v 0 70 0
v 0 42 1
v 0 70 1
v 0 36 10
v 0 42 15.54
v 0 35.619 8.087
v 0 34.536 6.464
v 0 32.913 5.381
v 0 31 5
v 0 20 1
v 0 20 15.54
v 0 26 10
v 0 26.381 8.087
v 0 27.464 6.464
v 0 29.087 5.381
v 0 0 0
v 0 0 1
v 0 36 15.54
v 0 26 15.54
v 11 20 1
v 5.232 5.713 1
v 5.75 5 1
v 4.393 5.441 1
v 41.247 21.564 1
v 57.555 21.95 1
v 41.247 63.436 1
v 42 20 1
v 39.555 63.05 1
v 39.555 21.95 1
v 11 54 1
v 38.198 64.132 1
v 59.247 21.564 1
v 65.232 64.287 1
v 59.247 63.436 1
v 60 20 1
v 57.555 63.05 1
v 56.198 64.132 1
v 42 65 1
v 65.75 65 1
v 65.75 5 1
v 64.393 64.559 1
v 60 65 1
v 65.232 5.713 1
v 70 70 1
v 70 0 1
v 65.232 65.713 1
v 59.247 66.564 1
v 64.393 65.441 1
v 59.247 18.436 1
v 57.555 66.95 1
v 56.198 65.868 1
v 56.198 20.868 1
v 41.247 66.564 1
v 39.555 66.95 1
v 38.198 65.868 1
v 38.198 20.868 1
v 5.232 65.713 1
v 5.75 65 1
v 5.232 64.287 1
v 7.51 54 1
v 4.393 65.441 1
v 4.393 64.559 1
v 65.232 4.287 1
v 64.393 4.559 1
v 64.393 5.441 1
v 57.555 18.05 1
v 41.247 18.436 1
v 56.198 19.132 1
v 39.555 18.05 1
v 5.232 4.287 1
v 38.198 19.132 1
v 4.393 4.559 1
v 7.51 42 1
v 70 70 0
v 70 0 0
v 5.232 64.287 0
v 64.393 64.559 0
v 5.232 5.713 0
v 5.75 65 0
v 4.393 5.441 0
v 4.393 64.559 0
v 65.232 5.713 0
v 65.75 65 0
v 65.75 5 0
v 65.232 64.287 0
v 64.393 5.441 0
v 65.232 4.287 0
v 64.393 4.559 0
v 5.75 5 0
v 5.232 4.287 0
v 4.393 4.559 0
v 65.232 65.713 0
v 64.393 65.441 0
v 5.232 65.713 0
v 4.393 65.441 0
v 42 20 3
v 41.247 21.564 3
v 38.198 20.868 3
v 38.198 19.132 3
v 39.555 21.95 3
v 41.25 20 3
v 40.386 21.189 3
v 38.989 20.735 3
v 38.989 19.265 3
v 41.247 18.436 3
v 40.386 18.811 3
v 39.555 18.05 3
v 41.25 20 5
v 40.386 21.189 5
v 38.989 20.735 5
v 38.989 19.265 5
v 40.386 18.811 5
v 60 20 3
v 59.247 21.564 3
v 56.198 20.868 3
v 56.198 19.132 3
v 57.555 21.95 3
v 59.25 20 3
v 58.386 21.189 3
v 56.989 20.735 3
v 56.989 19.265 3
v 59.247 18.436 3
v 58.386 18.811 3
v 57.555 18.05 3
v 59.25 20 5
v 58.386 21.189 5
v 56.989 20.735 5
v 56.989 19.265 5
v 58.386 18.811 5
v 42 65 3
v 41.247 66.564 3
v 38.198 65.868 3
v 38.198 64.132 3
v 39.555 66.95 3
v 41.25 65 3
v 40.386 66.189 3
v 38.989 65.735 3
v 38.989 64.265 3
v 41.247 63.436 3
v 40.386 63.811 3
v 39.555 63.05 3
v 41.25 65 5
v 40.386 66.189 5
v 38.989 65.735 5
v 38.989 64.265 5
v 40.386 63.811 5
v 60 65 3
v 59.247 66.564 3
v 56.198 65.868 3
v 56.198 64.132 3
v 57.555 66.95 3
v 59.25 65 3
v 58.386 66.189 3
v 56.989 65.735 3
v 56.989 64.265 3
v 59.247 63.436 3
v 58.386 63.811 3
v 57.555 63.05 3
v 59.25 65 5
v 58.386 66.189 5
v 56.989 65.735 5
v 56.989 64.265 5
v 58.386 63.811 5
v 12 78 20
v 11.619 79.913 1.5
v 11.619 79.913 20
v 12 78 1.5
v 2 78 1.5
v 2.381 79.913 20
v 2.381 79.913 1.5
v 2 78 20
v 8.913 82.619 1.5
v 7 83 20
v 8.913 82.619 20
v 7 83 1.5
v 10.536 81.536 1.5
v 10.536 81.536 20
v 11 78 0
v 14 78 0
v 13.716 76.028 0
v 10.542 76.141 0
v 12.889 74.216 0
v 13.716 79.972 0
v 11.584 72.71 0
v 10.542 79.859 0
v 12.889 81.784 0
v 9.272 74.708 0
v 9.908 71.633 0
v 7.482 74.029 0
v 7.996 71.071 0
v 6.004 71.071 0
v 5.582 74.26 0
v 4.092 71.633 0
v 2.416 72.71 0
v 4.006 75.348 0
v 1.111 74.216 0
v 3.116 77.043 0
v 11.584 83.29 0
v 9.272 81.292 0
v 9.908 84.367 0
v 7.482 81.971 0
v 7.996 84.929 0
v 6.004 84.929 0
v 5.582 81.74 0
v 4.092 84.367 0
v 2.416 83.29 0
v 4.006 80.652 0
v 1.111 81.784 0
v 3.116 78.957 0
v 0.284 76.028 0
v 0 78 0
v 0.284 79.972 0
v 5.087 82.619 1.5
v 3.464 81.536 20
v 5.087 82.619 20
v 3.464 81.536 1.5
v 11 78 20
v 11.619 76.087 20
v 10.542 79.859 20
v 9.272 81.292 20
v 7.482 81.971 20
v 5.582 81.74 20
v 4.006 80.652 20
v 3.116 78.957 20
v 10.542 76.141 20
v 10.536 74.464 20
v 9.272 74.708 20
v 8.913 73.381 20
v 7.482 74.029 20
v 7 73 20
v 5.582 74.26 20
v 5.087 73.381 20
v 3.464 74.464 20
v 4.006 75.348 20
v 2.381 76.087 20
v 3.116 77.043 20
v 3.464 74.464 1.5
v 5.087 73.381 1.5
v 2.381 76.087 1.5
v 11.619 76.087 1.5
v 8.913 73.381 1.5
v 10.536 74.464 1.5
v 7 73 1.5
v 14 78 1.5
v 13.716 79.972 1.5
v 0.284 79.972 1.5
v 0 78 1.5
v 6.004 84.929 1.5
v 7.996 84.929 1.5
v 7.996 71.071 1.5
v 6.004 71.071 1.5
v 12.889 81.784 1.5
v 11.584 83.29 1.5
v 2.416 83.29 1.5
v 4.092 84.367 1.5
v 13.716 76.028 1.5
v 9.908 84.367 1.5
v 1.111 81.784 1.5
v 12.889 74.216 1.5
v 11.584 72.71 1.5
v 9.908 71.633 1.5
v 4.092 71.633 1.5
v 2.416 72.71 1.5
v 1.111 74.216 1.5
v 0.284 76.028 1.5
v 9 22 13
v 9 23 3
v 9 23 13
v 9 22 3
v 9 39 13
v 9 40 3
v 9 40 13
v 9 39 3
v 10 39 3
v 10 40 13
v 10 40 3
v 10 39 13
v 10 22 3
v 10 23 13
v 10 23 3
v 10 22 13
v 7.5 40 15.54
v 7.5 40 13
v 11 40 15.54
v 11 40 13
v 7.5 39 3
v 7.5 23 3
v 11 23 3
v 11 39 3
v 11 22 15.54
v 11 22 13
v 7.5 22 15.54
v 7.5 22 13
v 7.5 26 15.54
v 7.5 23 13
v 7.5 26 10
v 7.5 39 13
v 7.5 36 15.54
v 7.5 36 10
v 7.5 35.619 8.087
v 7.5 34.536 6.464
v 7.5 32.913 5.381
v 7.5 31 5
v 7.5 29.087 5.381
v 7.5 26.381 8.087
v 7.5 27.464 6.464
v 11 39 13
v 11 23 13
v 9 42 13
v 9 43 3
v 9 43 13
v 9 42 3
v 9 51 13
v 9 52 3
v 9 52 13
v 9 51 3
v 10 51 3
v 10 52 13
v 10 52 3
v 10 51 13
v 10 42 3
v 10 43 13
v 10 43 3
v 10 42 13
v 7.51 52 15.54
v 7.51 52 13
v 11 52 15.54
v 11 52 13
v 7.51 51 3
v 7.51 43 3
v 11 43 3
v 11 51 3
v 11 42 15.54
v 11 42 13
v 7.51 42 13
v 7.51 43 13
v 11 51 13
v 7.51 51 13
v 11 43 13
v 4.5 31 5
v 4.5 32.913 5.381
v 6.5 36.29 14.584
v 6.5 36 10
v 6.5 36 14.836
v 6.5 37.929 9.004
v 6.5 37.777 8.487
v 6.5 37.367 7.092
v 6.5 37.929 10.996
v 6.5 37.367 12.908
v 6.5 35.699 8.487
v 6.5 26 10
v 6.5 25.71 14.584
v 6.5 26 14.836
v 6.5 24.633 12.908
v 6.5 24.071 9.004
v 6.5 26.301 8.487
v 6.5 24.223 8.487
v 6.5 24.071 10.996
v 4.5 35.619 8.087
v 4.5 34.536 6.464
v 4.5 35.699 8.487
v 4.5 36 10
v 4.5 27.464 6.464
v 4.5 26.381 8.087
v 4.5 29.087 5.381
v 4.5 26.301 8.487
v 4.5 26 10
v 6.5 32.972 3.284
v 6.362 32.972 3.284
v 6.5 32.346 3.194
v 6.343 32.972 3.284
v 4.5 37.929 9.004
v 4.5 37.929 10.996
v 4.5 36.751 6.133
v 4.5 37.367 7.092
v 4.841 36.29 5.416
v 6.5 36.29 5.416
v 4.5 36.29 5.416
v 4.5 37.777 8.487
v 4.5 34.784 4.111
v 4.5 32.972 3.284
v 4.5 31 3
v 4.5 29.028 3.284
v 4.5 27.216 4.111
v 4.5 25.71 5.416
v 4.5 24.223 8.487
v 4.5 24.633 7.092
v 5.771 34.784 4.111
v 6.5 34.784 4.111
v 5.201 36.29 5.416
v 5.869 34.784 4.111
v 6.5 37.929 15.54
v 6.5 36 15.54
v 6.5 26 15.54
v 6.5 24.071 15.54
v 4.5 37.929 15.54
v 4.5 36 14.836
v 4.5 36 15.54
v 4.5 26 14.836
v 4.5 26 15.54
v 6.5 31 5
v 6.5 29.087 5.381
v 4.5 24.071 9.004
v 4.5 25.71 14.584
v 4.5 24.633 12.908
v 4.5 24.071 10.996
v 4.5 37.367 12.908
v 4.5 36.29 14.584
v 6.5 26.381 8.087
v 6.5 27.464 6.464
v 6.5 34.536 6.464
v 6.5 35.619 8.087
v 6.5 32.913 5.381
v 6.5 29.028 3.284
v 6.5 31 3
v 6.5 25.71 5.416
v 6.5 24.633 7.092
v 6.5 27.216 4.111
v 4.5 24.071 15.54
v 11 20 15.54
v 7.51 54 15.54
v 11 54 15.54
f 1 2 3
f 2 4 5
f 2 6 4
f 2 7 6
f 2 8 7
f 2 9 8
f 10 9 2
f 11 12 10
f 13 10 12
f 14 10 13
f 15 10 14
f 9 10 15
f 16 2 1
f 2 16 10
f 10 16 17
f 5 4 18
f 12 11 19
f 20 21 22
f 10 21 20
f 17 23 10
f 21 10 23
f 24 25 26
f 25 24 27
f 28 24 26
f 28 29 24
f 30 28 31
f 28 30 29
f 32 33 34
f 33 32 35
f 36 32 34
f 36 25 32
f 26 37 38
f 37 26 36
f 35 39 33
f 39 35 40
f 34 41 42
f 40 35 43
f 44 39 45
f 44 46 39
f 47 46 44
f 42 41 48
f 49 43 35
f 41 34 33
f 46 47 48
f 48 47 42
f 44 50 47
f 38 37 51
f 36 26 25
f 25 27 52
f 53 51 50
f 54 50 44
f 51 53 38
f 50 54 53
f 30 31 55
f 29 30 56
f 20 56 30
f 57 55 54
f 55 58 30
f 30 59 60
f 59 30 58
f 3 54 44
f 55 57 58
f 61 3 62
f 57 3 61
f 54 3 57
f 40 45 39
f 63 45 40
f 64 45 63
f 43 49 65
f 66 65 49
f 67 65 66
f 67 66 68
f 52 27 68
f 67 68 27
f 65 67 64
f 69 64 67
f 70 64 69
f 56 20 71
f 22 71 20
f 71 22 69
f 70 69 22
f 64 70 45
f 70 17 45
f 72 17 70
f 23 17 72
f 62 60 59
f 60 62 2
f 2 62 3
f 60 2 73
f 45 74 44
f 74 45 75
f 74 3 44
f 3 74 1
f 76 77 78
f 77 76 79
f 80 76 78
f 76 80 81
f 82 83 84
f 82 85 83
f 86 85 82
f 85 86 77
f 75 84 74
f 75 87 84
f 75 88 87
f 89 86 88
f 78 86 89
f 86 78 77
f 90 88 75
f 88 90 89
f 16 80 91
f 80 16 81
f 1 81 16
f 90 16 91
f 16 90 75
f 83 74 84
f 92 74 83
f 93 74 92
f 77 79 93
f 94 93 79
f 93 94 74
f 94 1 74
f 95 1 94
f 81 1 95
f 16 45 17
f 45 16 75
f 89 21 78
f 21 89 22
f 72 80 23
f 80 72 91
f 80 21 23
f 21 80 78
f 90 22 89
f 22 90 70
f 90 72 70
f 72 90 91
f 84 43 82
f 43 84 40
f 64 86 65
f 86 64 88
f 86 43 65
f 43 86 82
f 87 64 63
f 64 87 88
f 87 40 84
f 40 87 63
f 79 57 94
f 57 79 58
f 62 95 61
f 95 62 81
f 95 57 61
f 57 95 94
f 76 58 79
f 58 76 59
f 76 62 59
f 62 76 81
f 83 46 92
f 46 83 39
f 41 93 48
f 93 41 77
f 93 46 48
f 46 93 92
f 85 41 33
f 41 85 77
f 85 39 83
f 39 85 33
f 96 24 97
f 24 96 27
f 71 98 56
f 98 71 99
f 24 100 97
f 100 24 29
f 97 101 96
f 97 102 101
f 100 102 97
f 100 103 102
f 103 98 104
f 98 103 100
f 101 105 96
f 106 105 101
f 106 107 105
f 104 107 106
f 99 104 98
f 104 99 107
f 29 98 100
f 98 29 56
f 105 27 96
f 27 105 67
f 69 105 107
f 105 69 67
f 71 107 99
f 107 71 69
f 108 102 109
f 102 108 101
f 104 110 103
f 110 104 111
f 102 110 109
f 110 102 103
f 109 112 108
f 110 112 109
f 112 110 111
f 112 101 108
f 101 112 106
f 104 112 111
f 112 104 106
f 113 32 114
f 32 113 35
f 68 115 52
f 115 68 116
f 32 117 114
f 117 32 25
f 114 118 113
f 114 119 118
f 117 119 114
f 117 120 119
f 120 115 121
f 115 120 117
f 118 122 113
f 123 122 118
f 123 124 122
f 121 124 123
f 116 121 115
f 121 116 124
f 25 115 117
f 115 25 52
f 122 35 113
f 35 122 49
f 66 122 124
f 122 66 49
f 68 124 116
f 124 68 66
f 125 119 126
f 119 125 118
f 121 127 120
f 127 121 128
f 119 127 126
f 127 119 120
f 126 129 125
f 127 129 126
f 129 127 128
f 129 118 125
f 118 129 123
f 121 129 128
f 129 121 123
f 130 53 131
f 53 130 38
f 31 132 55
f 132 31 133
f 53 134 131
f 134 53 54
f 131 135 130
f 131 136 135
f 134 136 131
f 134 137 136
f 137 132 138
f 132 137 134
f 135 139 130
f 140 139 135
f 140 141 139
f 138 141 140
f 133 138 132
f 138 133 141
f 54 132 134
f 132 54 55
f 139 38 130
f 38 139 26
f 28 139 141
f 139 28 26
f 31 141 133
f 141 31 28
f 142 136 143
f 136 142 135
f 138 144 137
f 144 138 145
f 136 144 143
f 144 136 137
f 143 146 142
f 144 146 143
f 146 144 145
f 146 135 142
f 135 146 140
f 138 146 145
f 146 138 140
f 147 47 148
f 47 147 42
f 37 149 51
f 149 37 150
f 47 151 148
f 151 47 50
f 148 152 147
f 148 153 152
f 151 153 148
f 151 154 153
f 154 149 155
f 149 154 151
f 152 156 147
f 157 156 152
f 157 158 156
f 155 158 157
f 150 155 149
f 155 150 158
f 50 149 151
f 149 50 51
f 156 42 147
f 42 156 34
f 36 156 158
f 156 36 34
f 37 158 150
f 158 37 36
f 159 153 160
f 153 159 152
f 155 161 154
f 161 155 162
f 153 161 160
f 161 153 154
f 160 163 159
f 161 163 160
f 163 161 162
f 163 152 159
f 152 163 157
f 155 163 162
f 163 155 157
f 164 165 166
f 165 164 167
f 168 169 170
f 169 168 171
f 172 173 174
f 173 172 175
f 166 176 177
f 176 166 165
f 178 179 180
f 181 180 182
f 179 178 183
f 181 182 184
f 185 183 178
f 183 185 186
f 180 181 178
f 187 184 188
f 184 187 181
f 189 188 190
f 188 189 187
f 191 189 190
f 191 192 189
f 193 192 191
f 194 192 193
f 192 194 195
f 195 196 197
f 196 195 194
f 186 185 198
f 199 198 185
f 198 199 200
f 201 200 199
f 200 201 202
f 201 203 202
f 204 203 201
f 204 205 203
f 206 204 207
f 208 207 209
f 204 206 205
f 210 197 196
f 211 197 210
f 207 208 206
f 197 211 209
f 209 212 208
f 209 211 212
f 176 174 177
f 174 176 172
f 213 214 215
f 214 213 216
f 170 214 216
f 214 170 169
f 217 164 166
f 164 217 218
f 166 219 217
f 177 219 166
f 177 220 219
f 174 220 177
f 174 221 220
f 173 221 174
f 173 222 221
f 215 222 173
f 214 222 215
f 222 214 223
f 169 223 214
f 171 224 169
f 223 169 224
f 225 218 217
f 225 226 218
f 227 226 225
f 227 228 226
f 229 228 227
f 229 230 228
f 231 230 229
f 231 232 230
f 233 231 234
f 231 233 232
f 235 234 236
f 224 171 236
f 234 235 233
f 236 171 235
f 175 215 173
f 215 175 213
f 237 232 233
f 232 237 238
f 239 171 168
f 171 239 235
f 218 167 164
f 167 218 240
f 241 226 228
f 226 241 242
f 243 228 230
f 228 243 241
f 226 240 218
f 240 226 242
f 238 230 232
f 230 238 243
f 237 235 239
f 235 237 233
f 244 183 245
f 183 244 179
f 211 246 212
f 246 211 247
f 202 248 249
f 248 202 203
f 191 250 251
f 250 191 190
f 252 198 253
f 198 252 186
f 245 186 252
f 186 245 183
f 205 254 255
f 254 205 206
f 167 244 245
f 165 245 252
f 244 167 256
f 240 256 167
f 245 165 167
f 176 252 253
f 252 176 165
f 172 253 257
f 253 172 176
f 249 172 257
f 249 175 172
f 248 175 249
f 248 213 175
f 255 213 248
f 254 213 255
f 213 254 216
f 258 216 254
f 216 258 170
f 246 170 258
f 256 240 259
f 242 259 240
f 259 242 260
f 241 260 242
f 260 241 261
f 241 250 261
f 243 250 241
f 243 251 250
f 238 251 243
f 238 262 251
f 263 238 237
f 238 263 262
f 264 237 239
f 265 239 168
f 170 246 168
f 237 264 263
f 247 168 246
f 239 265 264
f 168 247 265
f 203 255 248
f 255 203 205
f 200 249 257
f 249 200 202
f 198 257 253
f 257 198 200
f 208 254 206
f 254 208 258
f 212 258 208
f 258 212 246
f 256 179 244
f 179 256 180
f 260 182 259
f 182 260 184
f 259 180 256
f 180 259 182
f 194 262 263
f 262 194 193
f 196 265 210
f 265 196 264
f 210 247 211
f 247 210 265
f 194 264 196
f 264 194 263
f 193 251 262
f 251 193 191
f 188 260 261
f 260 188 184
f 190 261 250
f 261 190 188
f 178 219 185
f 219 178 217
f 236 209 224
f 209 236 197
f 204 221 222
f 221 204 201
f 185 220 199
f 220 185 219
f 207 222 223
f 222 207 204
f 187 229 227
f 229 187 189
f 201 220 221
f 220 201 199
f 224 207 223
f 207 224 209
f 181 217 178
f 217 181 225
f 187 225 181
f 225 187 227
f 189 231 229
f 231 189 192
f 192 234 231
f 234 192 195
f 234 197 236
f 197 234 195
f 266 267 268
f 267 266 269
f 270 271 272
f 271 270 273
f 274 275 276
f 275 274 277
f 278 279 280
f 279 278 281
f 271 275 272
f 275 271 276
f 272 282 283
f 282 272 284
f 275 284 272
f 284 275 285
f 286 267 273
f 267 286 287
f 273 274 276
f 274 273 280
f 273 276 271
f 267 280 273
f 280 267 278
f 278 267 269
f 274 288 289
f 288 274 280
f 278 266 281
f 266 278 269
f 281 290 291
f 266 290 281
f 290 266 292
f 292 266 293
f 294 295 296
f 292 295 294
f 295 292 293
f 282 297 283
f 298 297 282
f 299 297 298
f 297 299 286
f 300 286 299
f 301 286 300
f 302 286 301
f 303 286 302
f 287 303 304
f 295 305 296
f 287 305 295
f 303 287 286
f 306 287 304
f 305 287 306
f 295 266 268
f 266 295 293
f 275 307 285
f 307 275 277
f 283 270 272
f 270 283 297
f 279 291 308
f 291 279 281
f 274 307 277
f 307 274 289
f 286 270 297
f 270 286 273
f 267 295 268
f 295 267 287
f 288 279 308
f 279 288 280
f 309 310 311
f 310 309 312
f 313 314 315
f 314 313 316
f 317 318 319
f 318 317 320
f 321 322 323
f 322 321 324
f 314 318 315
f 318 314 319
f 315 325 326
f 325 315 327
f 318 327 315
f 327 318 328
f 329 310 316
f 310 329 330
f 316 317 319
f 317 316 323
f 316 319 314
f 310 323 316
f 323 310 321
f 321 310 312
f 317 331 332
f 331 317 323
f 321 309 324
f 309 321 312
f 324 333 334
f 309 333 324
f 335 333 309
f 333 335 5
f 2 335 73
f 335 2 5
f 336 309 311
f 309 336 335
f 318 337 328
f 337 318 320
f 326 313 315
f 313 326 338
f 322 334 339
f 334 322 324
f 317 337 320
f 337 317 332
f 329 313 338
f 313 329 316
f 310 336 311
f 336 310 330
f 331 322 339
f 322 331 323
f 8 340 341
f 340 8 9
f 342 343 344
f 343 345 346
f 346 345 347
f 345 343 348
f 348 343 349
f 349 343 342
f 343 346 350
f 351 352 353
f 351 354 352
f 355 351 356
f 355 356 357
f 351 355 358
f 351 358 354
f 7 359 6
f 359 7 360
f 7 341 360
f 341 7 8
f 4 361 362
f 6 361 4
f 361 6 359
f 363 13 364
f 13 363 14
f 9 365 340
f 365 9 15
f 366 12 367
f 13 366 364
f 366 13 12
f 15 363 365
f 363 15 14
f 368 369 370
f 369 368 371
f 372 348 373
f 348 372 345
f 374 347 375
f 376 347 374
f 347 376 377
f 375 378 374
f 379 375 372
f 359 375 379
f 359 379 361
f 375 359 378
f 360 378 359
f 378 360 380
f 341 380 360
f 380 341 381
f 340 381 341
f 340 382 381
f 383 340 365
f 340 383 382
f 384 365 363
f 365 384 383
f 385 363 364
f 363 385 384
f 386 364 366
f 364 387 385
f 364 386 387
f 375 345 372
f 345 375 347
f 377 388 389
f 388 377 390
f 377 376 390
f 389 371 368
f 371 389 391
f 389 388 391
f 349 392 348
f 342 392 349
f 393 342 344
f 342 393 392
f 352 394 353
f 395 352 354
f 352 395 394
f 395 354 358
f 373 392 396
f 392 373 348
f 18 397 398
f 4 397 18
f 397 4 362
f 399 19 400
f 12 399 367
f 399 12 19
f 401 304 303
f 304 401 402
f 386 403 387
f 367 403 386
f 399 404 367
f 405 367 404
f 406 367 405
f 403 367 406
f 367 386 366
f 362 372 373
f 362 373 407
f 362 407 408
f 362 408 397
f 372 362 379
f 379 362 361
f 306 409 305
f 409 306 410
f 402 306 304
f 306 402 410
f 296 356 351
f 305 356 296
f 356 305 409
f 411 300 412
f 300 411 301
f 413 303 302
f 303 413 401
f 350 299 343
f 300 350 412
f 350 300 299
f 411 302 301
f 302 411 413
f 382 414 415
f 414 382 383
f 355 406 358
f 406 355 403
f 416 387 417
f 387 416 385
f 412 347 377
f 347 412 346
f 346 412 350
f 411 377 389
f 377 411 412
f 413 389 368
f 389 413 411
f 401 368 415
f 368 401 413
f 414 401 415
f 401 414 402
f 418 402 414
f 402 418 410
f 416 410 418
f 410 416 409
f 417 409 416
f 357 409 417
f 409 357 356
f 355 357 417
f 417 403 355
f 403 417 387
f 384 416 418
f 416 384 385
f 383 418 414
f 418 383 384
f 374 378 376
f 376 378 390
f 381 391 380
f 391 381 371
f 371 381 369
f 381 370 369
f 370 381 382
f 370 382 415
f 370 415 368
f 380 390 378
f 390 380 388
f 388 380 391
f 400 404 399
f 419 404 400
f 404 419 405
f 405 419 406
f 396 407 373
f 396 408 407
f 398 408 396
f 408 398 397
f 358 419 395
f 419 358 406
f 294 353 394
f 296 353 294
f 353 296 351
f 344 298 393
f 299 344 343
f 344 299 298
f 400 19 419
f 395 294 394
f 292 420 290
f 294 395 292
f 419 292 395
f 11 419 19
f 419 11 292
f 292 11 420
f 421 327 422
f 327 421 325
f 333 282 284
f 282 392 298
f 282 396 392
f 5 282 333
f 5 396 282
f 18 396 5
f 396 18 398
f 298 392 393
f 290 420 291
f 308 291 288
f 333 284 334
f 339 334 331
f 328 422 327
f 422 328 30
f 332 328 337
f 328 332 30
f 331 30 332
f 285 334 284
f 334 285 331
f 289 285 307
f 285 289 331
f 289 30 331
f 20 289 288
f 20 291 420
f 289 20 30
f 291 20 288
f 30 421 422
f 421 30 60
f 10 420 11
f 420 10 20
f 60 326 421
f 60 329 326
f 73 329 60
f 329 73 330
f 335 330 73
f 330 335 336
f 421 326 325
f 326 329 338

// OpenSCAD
// Grundplatte mit Halterungen, für den Sensor des Münster-Monitorings

// mm

// X Position x-Achse
// Y Position y-Achse
// B Breite x-Achse
// H Höhe   z-Achse
// T Tiefe  y-Achse
// R Radius
// D Durchmesser



// PARAMETRIERUNG


//Grundplatte gp:
gpUrsprX    = 0;
gpUrsprY    = 0;

gpB         = 70;
gpH         = 70;
gpT         = 1;

gpBohrungX  = 5;
gpBohrungY  = 5;
gpBohrungD  = 1.5;
gpBohrungB  = gpB - 2 * gpBohrungX;
gpBohrungH  = gpH - 2 * gpBohrungY;


// Pins für Mikro-Controller pc:
pcX         = 40;  // Position Mittelpunkt Pin links unten
pcY         = 20;
pcB         = 18;  // Abstand Mittelpunkte Pins in x-Richtung
pcH         = 45;  // Abstand Mittelpunkte Pins in x-Richtung

pcBasisD    = 4;
pcBasisT    = 2 + gpT;
pcPinD      = 2.5;
pcPinT      = 2 + pcBasisT;



// Röhre als Durchlass r:

rH          = 20;
rDAussen    = 10;
rDickeWand  = 1;
rBasisD     = 4 + rDAussen;
rBasisH     = 1.5;


// Scheibe zum Abschluss der Röhre s:

sDicke      = 0.5;
rHalterungBasisH = rBasisH + sDicke;


// Break out boards bob:

bobHoeheUnterkanteUberGP = 2;
bobSteckerT = 2.54;
babAbstaendeInHalterung = 2;


// VL6180X, Pololu-Breakoutboard bobVL6180X:

bobVL6180XBreite = 18;
bobVL6180XDicke = 1;
bobVL6180XHoeheBisStecker = 10;
bobVL6180XHoehe = bobVL6180XHoeheBisStecker + bobSteckerT;
bobVL6180XBreiteFuge = 1;
bobVL6180XX = 9;
bobVL6180XY = babAbstaendeInHalterung;
bobVL6180XZ = gpT + bobHoeheUnterkanteUberGP;


// BME280, Billo-Breakoutboard bobBME280:

bobBME280Breite = 10;
bobBME280Dicke = 1;
bobBME280HoeheBisStecker = 10;
bobBME280BreiteFuge = 1;
bobVME280X = 9;     // relativ zum Sensorhalterblock
bobVME280Y = bobVL6180XY + bobVL6180XBreite + babAbstaendeInHalterung;
bobVME280Z = gpT + bobHoeheUnterkanteUberGP;

// Block, um in der Sensorhalterung Aussparungen für die Stecker zu schaffen

mBreakoutboardSteckerBlockT = 10;
mBreakoutboardSteckerBlockB = 20;
mBreakoutboardSteckerBlockOffsetX = -1.5; // Für Überstand Pins/Lötkegel


// Block für Halterung der Sensoren sb:

sbB     = 11;
sbH     = bobVL6180XBreite + bobBME280Breite + 3 * babAbstaendeInHalterung;
sbT     = gpT + bobHoeheUnterkanteUberGP + bobVL6180XHoehe;
sbX     = 0;
sbY     = 20;
sbZ     = 0;






// AUFBAU


// Grundplatte mit Pins:

module bohrung (x, y, z = 0) {
    translate([x, y, z]) {
        cylinder(h = gpT * 4, d = gpBohrungD, center = true);
    }
}

module pin (x, y, z = 0) {
    translate([x, y, 0]) {
        union () {
            cylinder(h = pcBasisT, d = pcBasisD);
            cylinder(h = pcPinT, d = pcPinD);
        }
    }
}


difference () {
    cube([gpB, gpH, gpT]);
    bohrung(gpBohrungX             , gpBohrungY);
    bohrung(gpBohrungX + gpBohrungB, gpBohrungY);
    bohrung(gpBohrungX             , gpBohrungY + gpBohrungH);
    bohrung(gpBohrungX + gpBohrungB, gpBohrungY + gpBohrungH);
}

pin(pcX      , pcY);
pin(pcX + pcB, pcY);
pin(pcX      , pcY + pcH);
pin(pcX + pcB, pcY + pcH);



// Röhre

module roehre ( x, y, z, 
                hoehe,
                durchmesserAussen,
                dickeWand,
                basisDurchmesser,
                basisHoehe,
                gefuellt = false) {
    zentriert = true;
    translate([x, y, z]) {
        difference () {
            union () {
                translate ([0, 0, hoehe / 2]) {
                    cylinder(h = hoehe, d = durchmesserAussen, center = zentriert);
                }
                translate ([0, 0, basisHoehe / 2]) {
                    cylinder(h = basisHoehe, d = basisDurchmesser, center = zentriert);
                }
            }
            if (! gefuellt) {
                cylinder(h = hoehe * 4, d = durchmesserAussen - 2 * dickeWand, center = zentriert);
            }
        }
    }
}


module roehreAussparung () {
    translate ([0, rBasisD / 2, rBasisD / 2]) {
    union () {
        linear_extrude (20) {
            projection () {
                rotate ([0, -90, 0 ]) {
                    roehre (0, 0, 0,
                            rH, rDAussen, rDickeWand, rBasisD, rHalterungBasisH,
                            gefuellt = true);
                }
            }
        }
        rotate ([0, -90, 0 ]) {
            roehre (0, 0, 0,
                    rH, rDAussen, rDickeWand, rBasisD, rHalterungBasisH,
                    gefuellt = true);
        }
    }
}
}


roehre (rBasisD / 2, gpH + rBasisD / 2 + 1 , 0,
        rH, rDAussen, rDickeWand, rBasisD, rBasisH,
        gefuellt = false);



// Sensorhalterung

module breakoutboard (breite, dicke, hoeheBisStecker, breiteFuge, x, y, z) {
    translate ([x, y, z]) {
    union () {
        cube([dicke, breite, hoeheBisStecker+mBreakoutboardSteckerBlockT]);
        translate ([mBreakoutboardSteckerBlockOffsetX, 0, hoeheBisStecker]) {
            cube([mBreakoutboardSteckerBlockB, breite, mBreakoutboardSteckerBlockT]);
        }
        translate ([mBreakoutboardSteckerBlockOffsetX, breiteFuge, 0]) {
            cube([  mBreakoutboardSteckerBlockB,
                    breite - 2 * breiteFuge,
                    hoeheBisStecker + mBreakoutboardSteckerBlockT
            ]);
        }
    }
    }
}




translate([sbX, sbY, sbZ]) {
difference () {
    
    cube([sbB, sbH, sbT]);
    
    breakoutboard(bobVL6180XBreite, bobVL6180XDicke, bobVL6180XHoeheBisStecker, bobVL6180XBreiteFuge, bobVL6180XX, bobVL6180XY, bobVL6180XZ);
    
    breakoutboard(bobBME280Breite, bobBME280Dicke, bobBME280HoeheBisStecker, bobBME280BreiteFuge, bobVME280X, bobVME280Y, bobVME280Z);    
    
    translate ([bobVL6180XX - ( 1 + abs(mBreakoutboardSteckerBlockOffsetX)) ,
                bobVL6180XY + (bobVL6180XBreite - rBasisD) / 2,
                bobVL6180XZ]) {
        roehreAussparung ();
        translate ([-rHalterungBasisH, rBasisD, 0]) {
            rotate ([180, 180, 0]) {
                roehreAussparung ();
            }
        }

    }
    
    // Materialeinsparungen:
    translate([-1 , bobVME280Y, gpT]) {
        cube([  bobVME280X + mBreakoutboardSteckerBlockOffsetX + 1.01,
                bobBME280Breite + babAbstaendeInHalterung + 0.01,
                sbT
            ]);
    }
    
}
}
